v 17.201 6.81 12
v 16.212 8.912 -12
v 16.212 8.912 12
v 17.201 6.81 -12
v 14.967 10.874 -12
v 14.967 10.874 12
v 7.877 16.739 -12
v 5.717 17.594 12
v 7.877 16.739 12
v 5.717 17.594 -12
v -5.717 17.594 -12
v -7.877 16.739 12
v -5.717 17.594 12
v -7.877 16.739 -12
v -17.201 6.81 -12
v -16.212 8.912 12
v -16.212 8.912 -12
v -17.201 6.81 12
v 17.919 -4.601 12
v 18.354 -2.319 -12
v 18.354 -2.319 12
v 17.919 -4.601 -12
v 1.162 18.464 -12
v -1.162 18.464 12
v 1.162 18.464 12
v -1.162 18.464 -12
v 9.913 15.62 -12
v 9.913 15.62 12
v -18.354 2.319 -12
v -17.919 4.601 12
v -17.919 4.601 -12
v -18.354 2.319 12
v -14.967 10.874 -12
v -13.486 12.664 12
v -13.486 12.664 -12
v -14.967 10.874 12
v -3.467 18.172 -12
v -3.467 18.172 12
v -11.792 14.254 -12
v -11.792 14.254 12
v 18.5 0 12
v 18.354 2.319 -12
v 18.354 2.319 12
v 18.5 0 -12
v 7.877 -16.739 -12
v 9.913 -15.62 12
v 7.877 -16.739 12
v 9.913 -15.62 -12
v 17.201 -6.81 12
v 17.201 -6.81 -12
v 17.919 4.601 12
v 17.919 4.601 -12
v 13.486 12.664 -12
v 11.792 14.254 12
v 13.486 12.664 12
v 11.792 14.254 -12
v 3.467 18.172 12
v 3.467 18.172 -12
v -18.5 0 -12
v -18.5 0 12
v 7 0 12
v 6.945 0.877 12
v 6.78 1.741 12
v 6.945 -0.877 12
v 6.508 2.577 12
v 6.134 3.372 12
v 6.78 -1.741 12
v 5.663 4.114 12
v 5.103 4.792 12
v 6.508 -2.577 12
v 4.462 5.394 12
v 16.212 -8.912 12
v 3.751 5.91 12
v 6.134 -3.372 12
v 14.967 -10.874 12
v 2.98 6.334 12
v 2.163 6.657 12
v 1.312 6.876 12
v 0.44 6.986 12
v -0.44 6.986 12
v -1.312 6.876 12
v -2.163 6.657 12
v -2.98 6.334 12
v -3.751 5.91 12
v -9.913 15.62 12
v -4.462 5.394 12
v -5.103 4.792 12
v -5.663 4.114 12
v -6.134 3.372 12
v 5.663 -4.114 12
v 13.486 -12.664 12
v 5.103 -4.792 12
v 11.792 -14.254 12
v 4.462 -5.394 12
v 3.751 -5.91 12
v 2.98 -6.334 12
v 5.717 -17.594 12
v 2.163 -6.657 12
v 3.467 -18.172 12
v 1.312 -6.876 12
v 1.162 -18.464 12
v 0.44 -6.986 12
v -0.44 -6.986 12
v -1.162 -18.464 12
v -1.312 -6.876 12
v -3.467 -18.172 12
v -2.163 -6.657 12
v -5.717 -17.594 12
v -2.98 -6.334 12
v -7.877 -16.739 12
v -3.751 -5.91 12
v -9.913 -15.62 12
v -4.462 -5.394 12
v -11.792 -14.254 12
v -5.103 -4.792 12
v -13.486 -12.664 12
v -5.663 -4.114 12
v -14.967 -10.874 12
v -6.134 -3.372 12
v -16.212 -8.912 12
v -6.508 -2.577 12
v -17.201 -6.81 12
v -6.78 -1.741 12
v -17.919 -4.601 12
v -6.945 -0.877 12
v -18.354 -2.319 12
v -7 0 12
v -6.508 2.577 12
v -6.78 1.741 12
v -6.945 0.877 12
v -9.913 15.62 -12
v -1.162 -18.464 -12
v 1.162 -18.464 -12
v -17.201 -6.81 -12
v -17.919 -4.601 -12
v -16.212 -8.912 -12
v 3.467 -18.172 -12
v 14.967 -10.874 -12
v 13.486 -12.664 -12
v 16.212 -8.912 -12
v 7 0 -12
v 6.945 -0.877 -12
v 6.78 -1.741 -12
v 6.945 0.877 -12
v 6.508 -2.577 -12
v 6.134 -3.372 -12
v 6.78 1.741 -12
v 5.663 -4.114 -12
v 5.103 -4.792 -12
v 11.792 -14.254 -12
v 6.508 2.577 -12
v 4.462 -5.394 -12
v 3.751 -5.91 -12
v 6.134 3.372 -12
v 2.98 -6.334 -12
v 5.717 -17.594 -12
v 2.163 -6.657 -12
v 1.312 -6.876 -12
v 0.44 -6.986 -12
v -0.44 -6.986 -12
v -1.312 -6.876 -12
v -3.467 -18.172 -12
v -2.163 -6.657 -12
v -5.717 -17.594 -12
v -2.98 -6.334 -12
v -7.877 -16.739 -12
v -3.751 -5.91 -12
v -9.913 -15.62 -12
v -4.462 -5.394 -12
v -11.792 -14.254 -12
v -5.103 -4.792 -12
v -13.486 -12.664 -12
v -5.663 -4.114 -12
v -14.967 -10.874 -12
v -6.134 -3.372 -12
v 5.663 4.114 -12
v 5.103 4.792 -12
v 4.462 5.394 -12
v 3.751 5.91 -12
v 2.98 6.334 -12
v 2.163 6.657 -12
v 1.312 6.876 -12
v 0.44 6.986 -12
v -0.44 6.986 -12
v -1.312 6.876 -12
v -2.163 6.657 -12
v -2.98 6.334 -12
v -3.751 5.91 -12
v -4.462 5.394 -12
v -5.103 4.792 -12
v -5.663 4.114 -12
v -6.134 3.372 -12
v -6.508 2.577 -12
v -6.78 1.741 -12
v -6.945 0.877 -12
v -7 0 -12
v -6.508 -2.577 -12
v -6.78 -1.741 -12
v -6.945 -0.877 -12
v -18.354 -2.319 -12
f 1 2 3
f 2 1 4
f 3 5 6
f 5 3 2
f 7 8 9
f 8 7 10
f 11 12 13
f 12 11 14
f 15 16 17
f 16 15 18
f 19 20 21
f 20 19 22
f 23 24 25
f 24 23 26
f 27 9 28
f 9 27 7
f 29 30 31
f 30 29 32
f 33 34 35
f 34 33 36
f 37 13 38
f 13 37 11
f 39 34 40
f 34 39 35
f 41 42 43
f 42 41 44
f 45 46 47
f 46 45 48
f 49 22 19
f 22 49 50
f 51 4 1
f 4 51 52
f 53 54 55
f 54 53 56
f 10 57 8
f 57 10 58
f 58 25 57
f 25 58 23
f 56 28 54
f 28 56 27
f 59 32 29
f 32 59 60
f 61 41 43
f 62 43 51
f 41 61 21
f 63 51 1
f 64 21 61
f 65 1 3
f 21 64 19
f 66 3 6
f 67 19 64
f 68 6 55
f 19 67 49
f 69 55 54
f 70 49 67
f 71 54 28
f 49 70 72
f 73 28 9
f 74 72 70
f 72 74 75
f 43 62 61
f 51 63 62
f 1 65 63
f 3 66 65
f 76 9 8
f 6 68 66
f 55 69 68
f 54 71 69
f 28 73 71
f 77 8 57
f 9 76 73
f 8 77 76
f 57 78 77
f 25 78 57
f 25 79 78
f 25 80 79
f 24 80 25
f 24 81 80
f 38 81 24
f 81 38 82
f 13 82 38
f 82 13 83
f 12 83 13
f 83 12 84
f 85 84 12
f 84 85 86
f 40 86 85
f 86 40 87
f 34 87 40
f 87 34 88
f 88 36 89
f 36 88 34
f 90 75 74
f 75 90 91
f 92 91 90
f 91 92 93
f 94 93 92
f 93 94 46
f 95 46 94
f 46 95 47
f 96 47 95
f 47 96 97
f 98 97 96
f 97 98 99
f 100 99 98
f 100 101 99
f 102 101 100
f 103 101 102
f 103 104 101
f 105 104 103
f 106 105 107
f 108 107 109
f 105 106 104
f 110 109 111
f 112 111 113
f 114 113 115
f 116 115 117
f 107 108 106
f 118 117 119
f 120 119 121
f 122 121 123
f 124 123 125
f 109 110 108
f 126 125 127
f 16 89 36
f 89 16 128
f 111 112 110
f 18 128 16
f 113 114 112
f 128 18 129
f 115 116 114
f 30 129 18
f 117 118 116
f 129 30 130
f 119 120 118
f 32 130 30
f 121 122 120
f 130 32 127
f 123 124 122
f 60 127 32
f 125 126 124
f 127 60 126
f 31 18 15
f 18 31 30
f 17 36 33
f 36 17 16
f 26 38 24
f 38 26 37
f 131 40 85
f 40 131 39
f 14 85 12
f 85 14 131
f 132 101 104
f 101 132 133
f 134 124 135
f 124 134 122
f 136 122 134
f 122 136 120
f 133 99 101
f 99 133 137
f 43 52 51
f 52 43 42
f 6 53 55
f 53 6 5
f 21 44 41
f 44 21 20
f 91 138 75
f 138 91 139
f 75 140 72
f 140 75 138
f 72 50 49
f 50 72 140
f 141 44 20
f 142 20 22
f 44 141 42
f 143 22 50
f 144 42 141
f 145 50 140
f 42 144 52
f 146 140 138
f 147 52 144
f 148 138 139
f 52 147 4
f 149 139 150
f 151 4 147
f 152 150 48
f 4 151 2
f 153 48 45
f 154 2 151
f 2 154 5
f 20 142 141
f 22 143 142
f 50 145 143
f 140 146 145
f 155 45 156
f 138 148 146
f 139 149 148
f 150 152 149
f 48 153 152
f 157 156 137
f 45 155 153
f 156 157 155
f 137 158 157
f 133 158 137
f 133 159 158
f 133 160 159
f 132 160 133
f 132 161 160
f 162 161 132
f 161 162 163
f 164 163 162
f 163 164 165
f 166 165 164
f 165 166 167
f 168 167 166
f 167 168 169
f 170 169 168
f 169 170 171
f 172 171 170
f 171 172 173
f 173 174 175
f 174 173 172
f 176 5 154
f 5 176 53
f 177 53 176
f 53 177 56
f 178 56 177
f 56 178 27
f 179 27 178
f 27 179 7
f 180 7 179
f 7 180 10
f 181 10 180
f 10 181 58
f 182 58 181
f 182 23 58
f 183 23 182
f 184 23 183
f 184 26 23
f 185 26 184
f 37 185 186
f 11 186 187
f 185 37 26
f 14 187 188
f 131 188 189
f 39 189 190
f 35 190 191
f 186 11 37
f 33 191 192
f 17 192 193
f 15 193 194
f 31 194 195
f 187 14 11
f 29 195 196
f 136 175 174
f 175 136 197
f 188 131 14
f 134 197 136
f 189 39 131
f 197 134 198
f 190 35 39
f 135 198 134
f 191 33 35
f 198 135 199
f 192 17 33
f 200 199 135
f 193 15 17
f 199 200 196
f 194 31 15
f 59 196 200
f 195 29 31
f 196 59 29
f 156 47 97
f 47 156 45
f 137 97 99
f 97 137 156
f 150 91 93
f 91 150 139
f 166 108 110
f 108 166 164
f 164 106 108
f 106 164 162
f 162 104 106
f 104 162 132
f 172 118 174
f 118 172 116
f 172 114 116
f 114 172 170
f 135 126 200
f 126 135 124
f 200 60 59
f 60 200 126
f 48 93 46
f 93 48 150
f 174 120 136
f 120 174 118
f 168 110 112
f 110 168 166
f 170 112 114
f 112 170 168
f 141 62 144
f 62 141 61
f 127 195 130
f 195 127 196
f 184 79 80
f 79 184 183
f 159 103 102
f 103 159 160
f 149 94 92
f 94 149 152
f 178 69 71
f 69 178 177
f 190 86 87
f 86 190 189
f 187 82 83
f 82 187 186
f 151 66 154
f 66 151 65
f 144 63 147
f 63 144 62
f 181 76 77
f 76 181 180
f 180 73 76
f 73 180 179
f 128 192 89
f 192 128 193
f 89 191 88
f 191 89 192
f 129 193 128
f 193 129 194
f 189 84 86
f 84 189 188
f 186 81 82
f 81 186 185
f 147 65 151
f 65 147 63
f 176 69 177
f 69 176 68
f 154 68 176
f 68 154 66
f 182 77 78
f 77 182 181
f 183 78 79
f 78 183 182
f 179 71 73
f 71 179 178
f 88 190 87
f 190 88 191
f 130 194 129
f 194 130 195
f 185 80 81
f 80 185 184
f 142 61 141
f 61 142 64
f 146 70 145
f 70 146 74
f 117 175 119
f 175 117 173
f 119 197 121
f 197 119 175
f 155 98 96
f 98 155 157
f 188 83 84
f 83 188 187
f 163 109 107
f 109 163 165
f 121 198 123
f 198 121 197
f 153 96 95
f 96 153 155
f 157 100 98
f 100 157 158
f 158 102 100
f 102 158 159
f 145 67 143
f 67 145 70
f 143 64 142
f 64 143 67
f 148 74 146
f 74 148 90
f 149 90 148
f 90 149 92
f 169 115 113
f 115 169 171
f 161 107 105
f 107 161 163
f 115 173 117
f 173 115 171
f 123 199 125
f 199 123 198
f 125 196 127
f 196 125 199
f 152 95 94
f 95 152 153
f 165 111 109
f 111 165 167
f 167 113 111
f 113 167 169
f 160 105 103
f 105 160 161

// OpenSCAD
$fn = 50;


difference() {
	union() {
		translate(v = [0, 0, -12.0000000000]) {
			cylinder(h = 24, r = 18.5000000000);
		}
	}
	union() {
		translate(v = [0, 0, -100.0000000000]) {
			cylinder(h = 200, r = 7);
		}
	}
}
